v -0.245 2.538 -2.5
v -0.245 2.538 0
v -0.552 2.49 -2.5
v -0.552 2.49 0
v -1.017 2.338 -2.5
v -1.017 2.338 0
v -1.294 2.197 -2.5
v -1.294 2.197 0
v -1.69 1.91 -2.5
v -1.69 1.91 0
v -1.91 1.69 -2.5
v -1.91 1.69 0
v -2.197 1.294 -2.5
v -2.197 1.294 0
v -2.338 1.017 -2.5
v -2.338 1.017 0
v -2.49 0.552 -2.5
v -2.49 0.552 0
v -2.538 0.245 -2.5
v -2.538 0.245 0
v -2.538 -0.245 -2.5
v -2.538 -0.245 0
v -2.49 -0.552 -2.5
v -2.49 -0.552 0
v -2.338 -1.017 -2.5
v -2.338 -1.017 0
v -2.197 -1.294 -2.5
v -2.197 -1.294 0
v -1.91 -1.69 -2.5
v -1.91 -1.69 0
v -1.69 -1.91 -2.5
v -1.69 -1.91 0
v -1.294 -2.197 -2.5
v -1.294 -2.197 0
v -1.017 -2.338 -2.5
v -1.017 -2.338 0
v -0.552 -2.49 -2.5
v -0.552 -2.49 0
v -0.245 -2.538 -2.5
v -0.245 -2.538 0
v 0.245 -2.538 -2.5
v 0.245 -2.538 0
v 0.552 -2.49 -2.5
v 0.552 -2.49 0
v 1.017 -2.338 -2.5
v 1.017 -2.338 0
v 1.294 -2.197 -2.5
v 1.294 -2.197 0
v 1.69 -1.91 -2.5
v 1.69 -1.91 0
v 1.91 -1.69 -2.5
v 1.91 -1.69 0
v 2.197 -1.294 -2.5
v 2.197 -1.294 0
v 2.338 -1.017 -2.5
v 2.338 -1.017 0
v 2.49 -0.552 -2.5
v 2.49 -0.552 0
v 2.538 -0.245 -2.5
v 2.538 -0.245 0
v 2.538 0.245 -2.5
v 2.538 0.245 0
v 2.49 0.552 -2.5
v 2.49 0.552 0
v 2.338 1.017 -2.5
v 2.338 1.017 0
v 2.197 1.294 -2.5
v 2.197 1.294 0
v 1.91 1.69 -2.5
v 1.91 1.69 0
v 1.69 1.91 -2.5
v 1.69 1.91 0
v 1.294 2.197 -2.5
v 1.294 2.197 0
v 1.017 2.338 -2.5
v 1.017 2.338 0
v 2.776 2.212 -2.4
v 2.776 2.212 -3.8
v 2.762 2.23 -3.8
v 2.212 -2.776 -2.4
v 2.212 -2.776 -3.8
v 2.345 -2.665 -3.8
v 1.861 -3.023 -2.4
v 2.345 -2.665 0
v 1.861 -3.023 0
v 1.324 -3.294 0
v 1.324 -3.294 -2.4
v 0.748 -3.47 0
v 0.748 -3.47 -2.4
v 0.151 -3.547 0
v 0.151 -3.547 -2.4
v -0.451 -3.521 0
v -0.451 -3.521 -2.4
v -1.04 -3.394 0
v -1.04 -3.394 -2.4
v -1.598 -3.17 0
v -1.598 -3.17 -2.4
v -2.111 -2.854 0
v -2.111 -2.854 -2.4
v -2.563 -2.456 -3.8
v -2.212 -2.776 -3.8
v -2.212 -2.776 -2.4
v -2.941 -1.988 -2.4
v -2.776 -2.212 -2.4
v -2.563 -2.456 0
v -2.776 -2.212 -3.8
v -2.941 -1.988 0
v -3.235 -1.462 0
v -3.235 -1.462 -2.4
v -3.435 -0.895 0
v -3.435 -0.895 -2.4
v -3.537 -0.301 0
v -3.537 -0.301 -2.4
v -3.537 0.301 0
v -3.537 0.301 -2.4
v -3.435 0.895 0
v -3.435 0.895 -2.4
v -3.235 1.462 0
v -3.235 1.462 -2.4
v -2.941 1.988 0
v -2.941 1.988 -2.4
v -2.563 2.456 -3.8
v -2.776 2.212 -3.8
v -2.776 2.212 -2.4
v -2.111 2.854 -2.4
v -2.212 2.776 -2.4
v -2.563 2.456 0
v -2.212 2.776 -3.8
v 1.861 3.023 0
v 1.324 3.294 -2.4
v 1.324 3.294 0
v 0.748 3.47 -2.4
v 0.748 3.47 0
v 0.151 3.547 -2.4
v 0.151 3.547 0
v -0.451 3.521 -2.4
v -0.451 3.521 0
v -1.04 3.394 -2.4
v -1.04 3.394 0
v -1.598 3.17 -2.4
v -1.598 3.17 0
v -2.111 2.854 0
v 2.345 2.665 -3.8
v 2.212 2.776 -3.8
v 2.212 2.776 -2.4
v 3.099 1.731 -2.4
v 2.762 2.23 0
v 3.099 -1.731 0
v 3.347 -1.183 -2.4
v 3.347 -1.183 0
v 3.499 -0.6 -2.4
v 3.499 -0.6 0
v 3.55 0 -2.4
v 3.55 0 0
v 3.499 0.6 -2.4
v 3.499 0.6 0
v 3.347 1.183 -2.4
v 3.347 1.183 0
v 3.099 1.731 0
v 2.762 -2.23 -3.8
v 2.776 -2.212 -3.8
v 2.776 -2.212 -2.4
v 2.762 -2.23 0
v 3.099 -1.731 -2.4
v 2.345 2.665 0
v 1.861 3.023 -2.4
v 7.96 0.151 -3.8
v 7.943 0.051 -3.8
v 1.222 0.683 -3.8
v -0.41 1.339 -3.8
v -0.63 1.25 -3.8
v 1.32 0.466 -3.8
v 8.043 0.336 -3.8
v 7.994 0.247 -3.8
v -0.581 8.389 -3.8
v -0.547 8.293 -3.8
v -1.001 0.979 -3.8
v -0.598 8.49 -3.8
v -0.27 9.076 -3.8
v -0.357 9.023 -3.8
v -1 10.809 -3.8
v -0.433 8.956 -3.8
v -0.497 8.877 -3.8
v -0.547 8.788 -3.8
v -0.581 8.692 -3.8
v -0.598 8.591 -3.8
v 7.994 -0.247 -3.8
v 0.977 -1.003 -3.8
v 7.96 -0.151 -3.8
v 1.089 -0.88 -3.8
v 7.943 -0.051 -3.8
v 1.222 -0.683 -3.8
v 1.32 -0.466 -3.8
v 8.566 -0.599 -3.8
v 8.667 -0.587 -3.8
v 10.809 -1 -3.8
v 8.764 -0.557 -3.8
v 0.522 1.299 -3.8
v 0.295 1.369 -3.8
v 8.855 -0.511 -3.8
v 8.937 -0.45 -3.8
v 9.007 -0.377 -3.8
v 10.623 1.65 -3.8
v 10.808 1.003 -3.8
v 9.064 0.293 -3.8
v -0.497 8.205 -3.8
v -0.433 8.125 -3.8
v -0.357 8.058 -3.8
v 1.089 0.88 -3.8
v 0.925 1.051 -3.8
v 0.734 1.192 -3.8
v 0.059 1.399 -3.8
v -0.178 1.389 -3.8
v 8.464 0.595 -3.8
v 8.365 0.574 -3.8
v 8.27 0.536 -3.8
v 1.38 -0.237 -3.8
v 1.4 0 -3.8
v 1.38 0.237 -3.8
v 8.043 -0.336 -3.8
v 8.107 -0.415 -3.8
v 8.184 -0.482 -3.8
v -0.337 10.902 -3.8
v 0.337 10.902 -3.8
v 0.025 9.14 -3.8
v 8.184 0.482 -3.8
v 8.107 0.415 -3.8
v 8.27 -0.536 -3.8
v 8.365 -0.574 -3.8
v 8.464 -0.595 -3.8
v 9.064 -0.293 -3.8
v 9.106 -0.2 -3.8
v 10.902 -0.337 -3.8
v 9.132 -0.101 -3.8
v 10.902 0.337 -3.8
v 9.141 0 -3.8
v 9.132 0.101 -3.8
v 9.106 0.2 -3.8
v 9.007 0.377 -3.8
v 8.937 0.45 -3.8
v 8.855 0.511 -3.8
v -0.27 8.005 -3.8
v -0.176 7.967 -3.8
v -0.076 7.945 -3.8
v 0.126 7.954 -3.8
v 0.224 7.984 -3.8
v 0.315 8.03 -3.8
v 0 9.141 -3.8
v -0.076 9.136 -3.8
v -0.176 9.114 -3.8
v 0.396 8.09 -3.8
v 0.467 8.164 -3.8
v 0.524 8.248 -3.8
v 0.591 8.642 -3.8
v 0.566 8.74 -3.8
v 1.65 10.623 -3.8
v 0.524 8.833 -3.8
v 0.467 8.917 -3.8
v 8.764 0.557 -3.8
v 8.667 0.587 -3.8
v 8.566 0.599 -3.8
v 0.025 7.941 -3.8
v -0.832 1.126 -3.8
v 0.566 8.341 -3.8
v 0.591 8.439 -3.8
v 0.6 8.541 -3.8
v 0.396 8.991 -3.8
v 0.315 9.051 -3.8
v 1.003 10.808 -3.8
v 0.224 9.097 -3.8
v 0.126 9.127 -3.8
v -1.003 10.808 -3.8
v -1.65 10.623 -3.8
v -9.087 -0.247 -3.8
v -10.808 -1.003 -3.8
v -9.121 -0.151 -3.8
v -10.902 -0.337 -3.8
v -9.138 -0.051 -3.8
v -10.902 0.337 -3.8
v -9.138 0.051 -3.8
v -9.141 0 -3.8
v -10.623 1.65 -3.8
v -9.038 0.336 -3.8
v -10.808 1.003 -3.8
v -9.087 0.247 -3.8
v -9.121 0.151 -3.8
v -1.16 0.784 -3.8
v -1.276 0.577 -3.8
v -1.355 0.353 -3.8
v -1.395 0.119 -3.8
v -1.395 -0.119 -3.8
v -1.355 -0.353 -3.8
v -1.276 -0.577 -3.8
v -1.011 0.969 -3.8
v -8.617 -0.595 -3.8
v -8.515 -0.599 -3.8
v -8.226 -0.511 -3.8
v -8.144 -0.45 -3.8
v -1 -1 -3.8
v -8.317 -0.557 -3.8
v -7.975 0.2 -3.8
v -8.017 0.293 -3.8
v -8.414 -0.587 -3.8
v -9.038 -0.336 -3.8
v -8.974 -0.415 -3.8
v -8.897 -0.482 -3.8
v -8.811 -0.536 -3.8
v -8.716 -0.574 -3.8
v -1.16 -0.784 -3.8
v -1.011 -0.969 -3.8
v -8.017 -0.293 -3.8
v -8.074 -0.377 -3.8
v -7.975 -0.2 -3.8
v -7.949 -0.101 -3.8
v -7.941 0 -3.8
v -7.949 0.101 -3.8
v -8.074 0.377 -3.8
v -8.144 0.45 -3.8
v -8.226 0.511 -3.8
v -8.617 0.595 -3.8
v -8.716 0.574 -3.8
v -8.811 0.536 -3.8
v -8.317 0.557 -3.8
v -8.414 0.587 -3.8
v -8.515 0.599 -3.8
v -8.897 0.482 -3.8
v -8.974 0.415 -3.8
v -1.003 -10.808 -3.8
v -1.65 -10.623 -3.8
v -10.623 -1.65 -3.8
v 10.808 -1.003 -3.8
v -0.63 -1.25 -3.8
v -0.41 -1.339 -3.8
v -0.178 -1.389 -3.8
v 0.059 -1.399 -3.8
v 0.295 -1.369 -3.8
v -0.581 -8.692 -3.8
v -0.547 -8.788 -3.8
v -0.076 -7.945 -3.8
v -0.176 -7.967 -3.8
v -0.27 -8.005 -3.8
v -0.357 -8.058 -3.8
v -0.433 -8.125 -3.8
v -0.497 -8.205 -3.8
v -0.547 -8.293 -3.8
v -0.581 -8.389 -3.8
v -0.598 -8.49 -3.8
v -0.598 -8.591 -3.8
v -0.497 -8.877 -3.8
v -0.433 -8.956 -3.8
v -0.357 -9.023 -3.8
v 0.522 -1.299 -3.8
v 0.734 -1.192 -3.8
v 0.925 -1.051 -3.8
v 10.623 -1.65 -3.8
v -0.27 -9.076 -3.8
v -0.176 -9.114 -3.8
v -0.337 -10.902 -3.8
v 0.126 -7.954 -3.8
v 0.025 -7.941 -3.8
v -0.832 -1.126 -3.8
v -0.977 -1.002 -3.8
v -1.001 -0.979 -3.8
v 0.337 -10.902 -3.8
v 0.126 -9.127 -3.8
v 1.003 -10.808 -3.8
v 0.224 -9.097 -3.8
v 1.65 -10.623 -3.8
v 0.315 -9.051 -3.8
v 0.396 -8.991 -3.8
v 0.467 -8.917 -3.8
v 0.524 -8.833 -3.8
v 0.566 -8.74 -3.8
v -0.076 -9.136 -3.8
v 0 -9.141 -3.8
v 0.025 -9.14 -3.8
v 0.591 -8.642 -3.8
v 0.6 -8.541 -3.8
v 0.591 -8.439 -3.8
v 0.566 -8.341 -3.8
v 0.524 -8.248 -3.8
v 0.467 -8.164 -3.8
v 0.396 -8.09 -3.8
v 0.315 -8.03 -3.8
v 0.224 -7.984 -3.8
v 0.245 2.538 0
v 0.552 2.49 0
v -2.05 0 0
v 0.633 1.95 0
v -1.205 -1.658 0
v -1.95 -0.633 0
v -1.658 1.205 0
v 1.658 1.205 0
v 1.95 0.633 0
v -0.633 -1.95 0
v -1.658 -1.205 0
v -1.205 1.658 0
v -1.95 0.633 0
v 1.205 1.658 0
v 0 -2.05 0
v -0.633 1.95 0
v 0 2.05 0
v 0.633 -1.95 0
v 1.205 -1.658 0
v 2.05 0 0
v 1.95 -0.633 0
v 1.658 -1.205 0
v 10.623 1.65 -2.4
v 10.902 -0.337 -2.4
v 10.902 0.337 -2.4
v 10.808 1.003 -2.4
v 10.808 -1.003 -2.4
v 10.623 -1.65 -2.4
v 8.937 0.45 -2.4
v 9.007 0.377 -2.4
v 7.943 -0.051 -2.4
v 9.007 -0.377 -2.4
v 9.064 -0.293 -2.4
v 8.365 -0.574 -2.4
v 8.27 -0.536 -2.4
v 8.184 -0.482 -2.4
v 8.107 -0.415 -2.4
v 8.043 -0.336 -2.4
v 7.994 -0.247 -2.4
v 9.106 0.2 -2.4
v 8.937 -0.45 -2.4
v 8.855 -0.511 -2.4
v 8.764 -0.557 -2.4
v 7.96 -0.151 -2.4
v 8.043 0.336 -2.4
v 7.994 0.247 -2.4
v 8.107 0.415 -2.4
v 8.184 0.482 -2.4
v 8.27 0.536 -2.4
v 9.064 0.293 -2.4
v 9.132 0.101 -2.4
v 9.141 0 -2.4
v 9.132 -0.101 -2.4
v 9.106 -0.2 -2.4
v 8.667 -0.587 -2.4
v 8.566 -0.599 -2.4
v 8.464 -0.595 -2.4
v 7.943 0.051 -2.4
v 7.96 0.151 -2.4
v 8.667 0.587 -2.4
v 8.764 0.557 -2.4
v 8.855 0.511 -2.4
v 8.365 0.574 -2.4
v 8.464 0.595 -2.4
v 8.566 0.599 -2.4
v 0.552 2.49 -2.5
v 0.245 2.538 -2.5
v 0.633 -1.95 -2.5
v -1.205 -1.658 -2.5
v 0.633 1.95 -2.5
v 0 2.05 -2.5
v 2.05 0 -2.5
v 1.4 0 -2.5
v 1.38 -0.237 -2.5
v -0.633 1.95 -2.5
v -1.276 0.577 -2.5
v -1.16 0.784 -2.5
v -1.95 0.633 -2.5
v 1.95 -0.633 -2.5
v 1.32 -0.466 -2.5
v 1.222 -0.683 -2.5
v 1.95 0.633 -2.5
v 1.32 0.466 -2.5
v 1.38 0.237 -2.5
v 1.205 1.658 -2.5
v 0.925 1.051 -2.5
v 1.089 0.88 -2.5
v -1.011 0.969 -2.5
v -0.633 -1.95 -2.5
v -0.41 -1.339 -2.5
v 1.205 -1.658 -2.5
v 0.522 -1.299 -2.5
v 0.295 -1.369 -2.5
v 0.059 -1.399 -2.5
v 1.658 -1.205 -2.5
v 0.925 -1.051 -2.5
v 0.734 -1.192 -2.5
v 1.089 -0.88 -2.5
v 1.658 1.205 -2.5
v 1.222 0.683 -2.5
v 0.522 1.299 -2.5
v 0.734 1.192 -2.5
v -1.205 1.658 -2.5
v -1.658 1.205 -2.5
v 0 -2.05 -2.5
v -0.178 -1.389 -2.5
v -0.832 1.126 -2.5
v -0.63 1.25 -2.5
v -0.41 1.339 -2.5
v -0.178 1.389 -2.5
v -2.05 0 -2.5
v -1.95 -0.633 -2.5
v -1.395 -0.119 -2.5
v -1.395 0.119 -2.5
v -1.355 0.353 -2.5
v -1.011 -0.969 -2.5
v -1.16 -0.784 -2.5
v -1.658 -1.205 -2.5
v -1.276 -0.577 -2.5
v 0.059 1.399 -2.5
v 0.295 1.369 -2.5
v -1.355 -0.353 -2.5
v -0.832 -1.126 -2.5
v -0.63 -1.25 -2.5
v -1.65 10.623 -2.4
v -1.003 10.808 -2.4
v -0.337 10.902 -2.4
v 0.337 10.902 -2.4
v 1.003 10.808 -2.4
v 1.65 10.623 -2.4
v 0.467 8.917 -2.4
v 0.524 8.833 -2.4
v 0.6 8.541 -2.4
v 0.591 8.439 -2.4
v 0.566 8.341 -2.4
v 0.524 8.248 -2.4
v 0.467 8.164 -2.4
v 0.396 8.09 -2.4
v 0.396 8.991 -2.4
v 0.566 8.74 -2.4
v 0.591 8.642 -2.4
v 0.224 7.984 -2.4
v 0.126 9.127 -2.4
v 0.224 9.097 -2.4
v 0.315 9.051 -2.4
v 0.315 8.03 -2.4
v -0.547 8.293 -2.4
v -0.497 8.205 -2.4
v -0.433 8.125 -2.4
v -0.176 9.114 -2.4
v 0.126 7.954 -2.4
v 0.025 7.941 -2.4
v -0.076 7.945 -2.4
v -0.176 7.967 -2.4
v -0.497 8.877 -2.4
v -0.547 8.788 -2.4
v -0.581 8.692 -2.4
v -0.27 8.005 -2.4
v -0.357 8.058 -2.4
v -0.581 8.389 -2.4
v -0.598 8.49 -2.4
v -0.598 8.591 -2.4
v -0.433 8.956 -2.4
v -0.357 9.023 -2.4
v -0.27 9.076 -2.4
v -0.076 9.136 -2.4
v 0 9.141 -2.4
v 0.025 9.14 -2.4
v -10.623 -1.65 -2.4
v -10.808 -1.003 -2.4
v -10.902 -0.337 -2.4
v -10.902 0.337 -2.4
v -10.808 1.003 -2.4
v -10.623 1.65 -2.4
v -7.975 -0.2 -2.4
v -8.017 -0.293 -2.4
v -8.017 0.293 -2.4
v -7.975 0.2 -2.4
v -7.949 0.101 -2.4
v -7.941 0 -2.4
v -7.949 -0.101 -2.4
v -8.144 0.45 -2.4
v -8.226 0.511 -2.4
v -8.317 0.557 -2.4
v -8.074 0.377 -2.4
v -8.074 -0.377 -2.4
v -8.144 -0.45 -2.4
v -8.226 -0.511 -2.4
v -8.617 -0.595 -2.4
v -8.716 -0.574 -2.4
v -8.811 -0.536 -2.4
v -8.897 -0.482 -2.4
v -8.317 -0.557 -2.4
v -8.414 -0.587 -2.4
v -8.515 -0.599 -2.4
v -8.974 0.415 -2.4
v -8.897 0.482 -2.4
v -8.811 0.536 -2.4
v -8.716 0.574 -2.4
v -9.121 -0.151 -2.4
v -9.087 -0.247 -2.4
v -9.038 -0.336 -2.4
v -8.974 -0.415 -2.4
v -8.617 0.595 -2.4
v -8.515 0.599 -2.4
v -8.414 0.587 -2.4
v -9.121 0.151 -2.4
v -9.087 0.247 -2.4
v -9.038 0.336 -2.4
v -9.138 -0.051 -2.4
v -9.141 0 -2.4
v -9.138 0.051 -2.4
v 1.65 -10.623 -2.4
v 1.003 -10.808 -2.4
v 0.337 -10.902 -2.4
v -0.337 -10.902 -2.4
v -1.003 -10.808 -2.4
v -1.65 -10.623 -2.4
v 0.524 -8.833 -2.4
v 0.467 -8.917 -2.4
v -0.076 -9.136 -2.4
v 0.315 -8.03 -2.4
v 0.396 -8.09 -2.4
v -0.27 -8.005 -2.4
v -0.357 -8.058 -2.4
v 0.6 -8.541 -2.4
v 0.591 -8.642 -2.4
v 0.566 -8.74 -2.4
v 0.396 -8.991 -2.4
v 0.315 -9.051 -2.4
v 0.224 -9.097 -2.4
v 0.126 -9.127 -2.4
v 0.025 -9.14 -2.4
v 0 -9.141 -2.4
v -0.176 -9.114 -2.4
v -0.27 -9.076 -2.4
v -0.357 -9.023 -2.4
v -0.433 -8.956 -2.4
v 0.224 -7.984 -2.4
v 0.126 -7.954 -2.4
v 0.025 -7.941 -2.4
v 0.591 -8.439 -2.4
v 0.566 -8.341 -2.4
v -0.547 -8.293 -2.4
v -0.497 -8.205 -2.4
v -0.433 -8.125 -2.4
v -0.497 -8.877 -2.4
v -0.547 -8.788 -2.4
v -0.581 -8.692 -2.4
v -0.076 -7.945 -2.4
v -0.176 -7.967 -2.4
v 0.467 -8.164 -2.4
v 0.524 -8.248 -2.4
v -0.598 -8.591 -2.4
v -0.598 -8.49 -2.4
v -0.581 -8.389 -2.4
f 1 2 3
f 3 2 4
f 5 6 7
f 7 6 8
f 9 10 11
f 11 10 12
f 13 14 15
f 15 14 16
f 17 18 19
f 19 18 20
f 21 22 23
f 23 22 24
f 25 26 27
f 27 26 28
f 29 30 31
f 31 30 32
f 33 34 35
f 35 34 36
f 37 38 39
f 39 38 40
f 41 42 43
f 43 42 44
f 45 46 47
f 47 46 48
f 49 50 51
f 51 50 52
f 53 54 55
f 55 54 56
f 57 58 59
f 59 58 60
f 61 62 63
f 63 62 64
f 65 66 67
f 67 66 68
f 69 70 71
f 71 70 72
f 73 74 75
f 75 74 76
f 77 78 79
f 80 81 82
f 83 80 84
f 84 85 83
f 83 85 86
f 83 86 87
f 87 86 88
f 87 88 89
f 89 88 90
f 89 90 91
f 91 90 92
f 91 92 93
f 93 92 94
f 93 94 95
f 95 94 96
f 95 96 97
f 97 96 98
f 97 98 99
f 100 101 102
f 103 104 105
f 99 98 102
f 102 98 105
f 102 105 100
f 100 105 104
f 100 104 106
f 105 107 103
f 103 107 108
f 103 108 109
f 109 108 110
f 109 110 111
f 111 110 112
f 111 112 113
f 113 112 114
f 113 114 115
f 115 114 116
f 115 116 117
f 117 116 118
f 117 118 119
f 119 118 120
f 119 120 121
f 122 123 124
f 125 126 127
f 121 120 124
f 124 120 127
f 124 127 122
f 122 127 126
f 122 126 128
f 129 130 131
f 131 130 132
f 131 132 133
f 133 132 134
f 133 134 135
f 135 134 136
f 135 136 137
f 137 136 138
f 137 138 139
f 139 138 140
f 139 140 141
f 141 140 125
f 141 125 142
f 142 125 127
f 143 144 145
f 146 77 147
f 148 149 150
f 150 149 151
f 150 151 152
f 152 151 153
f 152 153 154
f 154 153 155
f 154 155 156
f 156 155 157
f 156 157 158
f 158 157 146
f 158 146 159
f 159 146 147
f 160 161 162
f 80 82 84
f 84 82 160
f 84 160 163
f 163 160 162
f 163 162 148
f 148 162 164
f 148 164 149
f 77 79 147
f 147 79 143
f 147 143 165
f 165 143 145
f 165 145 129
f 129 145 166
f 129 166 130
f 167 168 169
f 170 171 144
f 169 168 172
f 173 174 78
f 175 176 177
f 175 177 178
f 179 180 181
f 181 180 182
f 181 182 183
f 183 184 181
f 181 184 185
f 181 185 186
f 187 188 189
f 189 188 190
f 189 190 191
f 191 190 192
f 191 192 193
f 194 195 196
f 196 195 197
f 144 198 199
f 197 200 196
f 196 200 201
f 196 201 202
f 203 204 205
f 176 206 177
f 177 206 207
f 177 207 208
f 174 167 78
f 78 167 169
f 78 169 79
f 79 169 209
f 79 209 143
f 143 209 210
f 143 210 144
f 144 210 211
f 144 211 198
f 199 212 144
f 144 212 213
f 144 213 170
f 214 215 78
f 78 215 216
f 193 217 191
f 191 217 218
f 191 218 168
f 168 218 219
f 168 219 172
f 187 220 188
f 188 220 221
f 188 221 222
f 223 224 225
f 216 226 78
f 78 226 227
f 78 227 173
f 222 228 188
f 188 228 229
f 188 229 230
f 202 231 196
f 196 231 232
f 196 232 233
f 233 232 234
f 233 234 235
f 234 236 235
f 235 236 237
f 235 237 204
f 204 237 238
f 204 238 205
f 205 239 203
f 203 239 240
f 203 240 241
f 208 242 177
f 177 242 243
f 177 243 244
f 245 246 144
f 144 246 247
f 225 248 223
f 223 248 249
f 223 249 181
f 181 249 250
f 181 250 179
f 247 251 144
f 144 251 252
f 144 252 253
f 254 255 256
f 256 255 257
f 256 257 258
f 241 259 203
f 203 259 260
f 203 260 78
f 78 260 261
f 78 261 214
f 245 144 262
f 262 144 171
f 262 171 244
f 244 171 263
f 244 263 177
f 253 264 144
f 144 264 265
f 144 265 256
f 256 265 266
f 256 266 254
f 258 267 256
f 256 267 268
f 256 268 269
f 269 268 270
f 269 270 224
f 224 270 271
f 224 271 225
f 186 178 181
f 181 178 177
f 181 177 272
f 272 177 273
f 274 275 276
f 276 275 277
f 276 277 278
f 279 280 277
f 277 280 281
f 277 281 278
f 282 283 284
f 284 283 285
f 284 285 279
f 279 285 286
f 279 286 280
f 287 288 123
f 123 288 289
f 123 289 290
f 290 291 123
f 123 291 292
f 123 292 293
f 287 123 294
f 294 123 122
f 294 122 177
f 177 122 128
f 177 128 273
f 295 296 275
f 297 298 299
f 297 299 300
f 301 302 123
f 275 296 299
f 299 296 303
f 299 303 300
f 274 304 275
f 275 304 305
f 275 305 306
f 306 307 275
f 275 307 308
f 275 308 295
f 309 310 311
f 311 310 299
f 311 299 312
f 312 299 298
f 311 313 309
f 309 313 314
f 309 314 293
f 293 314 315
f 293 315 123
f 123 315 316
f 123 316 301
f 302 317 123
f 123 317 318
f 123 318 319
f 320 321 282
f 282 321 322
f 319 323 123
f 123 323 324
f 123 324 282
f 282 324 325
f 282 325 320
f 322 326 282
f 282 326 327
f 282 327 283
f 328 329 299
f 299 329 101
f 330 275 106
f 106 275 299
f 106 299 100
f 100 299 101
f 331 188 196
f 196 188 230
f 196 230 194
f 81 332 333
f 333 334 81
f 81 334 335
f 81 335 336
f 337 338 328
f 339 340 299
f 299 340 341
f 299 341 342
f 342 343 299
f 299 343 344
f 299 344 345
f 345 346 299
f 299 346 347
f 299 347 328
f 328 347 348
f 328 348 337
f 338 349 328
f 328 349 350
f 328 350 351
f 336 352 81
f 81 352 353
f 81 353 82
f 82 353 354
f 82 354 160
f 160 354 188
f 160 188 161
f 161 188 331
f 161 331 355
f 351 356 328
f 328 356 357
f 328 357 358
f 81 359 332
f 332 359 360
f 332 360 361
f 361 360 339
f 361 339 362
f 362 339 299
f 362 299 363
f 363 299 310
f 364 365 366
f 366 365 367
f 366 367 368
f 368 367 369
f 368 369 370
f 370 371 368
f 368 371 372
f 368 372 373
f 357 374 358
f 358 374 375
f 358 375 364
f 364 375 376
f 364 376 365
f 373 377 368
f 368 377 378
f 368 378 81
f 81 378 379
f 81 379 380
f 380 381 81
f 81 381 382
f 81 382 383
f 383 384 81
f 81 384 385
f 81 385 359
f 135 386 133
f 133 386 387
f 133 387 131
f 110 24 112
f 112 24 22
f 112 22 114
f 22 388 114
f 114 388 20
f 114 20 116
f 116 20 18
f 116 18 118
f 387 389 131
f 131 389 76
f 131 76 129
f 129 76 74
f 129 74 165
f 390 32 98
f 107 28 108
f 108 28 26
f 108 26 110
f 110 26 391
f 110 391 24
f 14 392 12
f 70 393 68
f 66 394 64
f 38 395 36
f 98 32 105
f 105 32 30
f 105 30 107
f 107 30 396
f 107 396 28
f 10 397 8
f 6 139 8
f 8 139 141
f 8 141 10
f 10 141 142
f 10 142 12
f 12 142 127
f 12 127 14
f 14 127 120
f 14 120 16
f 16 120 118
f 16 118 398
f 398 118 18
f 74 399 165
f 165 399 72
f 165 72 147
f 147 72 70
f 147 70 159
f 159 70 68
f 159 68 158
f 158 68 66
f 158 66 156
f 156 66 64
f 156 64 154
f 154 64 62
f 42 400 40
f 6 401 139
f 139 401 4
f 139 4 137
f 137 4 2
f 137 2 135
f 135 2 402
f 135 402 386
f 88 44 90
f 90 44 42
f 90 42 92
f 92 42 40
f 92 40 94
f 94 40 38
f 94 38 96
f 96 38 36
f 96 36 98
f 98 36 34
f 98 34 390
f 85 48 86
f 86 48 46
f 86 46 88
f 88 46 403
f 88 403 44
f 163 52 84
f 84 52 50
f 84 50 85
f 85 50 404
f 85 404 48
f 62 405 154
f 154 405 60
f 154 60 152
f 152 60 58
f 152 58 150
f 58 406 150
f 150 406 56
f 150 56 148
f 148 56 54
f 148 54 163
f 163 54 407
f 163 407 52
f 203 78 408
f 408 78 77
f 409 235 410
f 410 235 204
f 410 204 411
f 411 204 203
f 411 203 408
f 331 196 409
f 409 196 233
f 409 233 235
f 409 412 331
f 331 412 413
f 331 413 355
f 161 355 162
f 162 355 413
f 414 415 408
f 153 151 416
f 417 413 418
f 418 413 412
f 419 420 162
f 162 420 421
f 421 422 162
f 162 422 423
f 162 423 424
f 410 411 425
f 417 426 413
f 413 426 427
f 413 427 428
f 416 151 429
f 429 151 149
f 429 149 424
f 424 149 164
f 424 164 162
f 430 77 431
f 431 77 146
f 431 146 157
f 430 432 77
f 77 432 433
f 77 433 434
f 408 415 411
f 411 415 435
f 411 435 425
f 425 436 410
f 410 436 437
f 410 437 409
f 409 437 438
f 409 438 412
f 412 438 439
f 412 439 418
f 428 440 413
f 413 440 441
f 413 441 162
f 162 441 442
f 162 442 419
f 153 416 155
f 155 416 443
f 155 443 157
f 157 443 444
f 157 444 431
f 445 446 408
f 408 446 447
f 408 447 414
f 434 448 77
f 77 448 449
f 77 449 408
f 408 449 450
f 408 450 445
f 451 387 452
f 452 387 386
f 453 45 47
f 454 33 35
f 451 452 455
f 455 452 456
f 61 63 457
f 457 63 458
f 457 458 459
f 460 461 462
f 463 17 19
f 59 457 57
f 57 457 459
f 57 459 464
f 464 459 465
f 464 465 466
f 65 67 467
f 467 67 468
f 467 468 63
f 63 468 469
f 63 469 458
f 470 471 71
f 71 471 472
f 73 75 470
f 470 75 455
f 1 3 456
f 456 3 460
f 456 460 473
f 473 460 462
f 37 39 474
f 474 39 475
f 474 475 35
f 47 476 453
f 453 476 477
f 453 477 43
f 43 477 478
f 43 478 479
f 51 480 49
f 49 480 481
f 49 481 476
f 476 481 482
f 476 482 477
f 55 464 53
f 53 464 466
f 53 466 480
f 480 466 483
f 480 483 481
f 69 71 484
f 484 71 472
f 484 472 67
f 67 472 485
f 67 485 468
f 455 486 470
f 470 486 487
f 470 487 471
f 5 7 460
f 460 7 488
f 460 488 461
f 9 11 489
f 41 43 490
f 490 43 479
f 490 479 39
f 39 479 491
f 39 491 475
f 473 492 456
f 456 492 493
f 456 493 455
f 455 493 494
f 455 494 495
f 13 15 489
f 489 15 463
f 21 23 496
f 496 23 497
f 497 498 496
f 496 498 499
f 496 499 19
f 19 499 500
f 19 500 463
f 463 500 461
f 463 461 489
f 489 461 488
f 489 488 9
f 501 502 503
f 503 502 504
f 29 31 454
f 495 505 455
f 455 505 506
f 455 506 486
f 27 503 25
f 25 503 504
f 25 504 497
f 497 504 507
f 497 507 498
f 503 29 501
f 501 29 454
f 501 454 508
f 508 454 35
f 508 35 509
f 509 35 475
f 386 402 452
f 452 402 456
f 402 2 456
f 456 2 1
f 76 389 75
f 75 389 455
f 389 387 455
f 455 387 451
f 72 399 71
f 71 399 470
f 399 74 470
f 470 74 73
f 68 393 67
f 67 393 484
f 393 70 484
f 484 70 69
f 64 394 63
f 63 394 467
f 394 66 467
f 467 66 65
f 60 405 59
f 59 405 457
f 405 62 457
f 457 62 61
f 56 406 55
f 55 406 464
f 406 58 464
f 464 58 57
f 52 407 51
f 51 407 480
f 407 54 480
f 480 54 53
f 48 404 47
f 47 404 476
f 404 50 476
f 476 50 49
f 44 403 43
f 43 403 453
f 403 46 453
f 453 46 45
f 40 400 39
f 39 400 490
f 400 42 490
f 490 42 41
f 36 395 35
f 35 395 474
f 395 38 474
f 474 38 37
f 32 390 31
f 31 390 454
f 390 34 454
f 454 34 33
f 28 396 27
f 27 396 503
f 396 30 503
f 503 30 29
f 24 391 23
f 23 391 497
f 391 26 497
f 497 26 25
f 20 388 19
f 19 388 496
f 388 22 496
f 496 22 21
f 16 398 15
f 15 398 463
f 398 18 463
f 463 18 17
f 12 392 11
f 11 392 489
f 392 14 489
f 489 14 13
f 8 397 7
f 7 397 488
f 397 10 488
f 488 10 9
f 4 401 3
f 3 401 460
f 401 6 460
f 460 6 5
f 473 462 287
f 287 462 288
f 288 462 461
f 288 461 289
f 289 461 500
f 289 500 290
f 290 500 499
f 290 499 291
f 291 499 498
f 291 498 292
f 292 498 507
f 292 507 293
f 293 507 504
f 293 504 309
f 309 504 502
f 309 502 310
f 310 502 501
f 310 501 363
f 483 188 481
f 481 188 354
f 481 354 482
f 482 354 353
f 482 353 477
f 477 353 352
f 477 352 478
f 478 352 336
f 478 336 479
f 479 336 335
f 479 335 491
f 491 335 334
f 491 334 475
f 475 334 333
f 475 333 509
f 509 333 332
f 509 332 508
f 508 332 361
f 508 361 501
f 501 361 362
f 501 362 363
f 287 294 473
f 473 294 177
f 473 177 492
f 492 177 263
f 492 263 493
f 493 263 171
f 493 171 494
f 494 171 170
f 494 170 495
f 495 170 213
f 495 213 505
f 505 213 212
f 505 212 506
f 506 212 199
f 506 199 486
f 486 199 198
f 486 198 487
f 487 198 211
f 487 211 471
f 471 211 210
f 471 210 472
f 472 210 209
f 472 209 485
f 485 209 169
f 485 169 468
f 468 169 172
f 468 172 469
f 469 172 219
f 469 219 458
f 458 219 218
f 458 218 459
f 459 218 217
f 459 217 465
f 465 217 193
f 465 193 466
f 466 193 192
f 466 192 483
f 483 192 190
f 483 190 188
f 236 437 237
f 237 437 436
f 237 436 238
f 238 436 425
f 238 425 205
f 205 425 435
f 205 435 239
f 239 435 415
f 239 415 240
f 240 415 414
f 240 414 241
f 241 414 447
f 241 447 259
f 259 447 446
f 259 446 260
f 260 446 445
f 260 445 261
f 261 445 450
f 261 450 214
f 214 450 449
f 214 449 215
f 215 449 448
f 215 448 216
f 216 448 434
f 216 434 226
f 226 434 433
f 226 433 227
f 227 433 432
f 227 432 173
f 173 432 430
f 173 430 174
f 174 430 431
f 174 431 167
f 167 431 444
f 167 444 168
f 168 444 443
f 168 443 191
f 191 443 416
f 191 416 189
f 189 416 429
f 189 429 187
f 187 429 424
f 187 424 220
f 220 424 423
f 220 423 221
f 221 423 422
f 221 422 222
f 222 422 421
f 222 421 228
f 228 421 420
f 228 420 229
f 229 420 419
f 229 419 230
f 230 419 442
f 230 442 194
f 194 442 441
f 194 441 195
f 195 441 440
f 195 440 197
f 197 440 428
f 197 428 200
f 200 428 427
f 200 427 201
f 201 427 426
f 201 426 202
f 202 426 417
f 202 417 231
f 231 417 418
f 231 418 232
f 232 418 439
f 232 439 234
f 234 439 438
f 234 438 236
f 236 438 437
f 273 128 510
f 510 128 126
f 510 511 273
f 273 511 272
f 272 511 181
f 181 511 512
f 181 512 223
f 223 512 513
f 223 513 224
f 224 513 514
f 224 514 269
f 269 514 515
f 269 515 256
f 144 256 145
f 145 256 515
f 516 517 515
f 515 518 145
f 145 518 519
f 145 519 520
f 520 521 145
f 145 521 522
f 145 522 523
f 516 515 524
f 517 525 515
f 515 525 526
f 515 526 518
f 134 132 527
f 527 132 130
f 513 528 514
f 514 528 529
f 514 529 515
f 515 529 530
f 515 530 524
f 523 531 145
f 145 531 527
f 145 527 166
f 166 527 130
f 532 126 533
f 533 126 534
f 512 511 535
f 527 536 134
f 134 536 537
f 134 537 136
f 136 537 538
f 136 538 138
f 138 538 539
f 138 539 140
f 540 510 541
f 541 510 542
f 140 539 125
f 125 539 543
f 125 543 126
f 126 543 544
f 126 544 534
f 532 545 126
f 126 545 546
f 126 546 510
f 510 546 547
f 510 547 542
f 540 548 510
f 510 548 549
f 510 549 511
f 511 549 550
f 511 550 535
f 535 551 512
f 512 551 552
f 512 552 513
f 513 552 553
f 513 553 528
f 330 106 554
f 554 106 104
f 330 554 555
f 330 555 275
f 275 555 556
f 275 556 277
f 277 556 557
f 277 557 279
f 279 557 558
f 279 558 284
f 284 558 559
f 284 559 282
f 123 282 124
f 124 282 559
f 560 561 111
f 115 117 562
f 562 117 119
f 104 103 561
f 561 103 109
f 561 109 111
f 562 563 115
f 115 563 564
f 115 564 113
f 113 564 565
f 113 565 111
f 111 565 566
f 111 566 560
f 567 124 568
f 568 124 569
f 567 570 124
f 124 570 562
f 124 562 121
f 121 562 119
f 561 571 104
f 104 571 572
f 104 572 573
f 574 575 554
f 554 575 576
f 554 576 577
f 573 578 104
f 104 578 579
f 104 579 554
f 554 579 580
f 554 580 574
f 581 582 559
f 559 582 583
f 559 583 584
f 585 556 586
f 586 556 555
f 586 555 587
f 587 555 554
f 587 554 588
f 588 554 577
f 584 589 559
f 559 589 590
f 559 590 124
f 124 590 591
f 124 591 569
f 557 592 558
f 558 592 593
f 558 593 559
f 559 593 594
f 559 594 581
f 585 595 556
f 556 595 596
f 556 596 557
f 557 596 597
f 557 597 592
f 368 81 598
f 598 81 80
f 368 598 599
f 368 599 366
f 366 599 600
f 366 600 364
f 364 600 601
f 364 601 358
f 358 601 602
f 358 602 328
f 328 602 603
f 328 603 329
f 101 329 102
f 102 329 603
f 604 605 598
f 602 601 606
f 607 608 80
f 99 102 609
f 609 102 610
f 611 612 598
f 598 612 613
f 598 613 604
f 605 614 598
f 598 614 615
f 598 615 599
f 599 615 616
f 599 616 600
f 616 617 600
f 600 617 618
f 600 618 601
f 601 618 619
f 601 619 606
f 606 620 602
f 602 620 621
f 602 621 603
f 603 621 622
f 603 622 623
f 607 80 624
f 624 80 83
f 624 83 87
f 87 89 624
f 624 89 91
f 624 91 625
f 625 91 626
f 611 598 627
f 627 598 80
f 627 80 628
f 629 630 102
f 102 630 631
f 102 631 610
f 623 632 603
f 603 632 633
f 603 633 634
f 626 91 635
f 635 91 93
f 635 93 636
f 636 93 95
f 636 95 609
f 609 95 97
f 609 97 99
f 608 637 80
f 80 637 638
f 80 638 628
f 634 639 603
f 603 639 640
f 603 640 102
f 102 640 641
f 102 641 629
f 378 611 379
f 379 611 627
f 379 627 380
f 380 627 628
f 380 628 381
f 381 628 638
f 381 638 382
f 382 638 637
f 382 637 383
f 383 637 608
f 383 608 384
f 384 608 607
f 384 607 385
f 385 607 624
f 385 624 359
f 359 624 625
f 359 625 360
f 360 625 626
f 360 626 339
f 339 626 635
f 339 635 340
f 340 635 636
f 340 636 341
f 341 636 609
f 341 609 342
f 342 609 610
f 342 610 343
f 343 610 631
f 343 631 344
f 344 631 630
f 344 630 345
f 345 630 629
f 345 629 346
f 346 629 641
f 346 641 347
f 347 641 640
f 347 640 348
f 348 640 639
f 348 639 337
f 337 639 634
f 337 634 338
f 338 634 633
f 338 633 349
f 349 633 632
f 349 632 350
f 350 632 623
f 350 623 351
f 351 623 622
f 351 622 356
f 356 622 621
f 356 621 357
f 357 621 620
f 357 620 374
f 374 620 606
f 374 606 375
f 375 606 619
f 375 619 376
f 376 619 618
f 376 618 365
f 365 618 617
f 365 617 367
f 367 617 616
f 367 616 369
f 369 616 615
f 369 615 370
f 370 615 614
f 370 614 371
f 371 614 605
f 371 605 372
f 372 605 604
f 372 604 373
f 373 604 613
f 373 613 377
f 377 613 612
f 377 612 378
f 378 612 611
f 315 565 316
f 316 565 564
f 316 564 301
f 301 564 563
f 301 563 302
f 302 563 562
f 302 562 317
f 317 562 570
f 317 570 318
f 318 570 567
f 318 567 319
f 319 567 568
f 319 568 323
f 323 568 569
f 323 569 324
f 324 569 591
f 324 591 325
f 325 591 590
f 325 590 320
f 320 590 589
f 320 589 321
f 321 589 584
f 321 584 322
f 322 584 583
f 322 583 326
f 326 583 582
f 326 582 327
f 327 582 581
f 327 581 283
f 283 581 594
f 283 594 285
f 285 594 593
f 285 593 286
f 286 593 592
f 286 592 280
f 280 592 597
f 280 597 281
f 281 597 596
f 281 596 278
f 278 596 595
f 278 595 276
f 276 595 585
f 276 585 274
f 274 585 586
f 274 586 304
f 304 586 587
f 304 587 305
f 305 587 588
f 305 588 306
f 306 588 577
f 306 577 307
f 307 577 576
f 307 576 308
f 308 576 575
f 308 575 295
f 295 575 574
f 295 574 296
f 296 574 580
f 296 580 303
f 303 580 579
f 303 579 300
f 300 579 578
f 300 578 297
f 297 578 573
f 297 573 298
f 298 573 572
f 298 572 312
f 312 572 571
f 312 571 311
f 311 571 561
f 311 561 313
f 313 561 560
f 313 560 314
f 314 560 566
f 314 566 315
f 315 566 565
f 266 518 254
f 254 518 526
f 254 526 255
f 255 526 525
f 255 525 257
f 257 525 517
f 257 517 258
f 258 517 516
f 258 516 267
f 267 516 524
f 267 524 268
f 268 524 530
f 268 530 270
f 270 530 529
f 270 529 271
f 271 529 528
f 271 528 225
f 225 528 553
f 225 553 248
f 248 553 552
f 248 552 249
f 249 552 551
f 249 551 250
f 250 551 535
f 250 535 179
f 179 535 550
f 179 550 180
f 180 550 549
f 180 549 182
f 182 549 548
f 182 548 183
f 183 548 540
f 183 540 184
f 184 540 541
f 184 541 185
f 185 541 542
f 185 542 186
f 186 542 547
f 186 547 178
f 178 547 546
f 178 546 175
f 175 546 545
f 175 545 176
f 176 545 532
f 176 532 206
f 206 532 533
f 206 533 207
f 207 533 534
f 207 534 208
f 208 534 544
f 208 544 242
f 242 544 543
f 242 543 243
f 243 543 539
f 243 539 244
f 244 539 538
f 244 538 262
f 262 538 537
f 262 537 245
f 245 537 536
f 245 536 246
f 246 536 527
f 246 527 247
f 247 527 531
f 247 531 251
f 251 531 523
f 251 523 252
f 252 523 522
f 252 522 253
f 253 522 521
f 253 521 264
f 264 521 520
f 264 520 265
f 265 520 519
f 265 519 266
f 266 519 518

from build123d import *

# Parameters (mm, degrees)
SKETCH2_R           = 3.55
BOSS_EXTRUDE1_DEPTH = 3.8
BOSS_EXTRUDE2_DEPTH = 1.4
SKETCH5_R           = 2.549999919
CUT_EXTRUDE1_DEPTH  = 2.5
BOSS_EXTRUDE3_DEPTH = 2.5
SKETCH6_R           = 1.4
CUT_EXTRUDE2_DEPTH  = 12.745554295
SKETCH7_R           = 0.6
CUT_EXTRUDE3_DEPTH  = 12.724676785
CIRPATTERN1_COUNT   = 4
CIRPATTERN2_COUNT   = 4


with BuildPart() as part:
    # Sketch2 → Boss-Extrude1 (new body)
    with BuildSketch(Plane.XY):
        Circle(SKETCH2_R)
    extrude(amount=-BOSS_EXTRUDE1_DEPTH)

    # Sketch4 → Boss-Extrude2 (add)
    with BuildSketch(Plane.XY.offset(-2.4)):
        with BuildLine():
            Line((2.776387215, 2.212277889), (10.622617722, 1.649999976))
            ThreePointArc((10.622617722, 1.649999976), (10.913548722, 0), (10.622617722, -1.649999976))
            Line((10.622617722, -1.649999976), (2.776387215, -2.212277889))
            ThreePointArc((2.776387215, -2.212277889), (3.549999952, 0), (2.776387215, 2.212277889))
        make_face()
    boss_extrude2 = extrude(amount=-BOSS_EXTRUDE2_DEPTH)

    # Sketch5 → Cut-Extrude1 (cut)
    with BuildSketch(Plane.XY):
        Circle(SKETCH5_R)
    extrude(amount=-CUT_EXTRUDE1_DEPTH, mode=Mode.SUBTRACT)

    # Sketch3 → Boss-Extrude3 (add)
    with BuildSketch(Plane.XY):
        with BuildLine():
            Line((-0.244697916, 2.538232164), (0, 2.049999952))
            Line((0, 2.049999952), (0.244697916, 2.538232164))
            ThreePointArc((0.244697916, 2.538232164), (0, 2.549999919), (-0.244697916, 2.538232164))
        make_face()
        with BuildLine():
            Line((0.551635326, 2.489618054), (0.633484824, 1.949665813))
            Line((0.633484824, 1.949665813), (1.017078422, 2.338386424))
            ThreePointArc((1.017078422, 2.338386424), (0.787993311, 2.42519404), (0.551635326, 2.489618054))
        make_face()
        with BuildLine():
            Line((1.29397066, 2.197302783), (1.204959739, 1.6584848))
            Line((1.204959739, 1.6584848), (1.689900206, 1.90964313))
            ThreePointArc((1.689900206, 1.90964313), (1.498852346, 2.06299327), (1.29397066, 2.197302783))
        make_face()
        with BuildLine():
            Line((1.90964313, 1.689900206), (1.6584848, 1.204959739))
            Line((1.6584848, 1.204959739), (2.197302783, 1.29397066))
            ThreePointArc((2.197302783, 1.29397066), (2.06299327, 1.498852346), (1.90964313, 1.689900206))
        make_face()
        with BuildLine():
            Line((2.338386424, 1.017078422), (1.949665813, 0.633484824))
            Line((1.949665813, 0.633484824), (2.489618054, 0.551635326))
            ThreePointArc((2.489618054, 0.551635326), (2.42519404, 0.787993311), (2.338386424, 1.017078422))
        make_face()
        with BuildLine():
            Line((2.538232164, 0.244697916), (2.049999952, 0))
            Line((2.049999952, 0), (2.538232164, -0.244697916))
            ThreePointArc((2.538232164, -0.244697916), (2.549999919, 0), (2.538232164, 0.244697916))
        make_face()
        with BuildLine():
            Line((2.489618054, -0.551635326), (1.949665813, -0.633484824))
            Line((1.949665813, -0.633484824), (2.338386424, -1.017078422))
            ThreePointArc((2.338386424, -1.017078422), (2.42519404, -0.787993311), (2.489618054, -0.551635326))
        make_face()
        with BuildLine():
            Line((2.197302783, -1.29397066), (1.6584848, -1.204959739))
            Line((1.6584848, -1.204959739), (1.90964313, -1.689900206))
            ThreePointArc((1.90964313, -1.689900206), (2.06299327, -1.498852346), (2.197302783, -1.29397066))
        make_face()
        with BuildLine():
            Line((1.689900206, -1.90964313), (1.204959739, -1.6584848))
            Line((1.204959739, -1.6584848), (1.29397066, -2.197302783))
            ThreePointArc((1.29397066, -2.197302783), (1.498852346, -2.06299327), (1.689900206, -1.90964313))
        make_face()
        with BuildLine():
            Line((1.017078422, -2.338386424), (0.633484824, -1.949665813))
            Line((0.633484824, -1.949665813), (0.551635326, -2.489618054))
            ThreePointArc((0.551635326, -2.489618054), (0.787993311, -2.42519404), (1.017078422, -2.338386424))
        make_face()
        with BuildLine():
            Line((0.244697916, -2.538232164), (0, -2.049999952))
            Line((0, -2.049999952), (-0.244697916, -2.538232164))
            ThreePointArc((-0.244697916, -2.538232164), (0, -2.549999919), (0.244697916, -2.538232164))
        make_face()
        with BuildLine():
            Line((-0.551635326, -2.489618054), (-0.633484824, -1.949665813))
            Line((-0.633484824, -1.949665813), (-1.017078422, -2.338386424))
            ThreePointArc((-1.017078422, -2.338386424), (-0.787993311, -2.42519404), (-0.551635326, -2.489618054))
        make_face()
        with BuildLine():
            Line((-1.29397066, -2.197302783), (-1.204959739, -1.6584848))
            Line((-1.204959739, -1.6584848), (-1.689900206, -1.90964313))
            ThreePointArc((-1.689900206, -1.90964313), (-1.498852346, -2.06299327), (-1.29397066, -2.197302783))
        make_face()
        with BuildLine():
            Line((-1.90964313, -1.689900206), (-1.6584848, -1.204959739))
            Line((-1.6584848, -1.204959739), (-2.197302783, -1.29397066))
            ThreePointArc((-2.197302783, -1.29397066), (-2.06299327, -1.498852346), (-1.90964313, -1.689900206))
        make_face()
        with BuildLine():
            Line((-2.338386424, -1.017078422), (-1.949665813, -0.633484824))
            Line((-1.949665813, -0.633484824), (-2.489618054, -0.551635326))
            ThreePointArc((-2.489618054, -0.551635326), (-2.42519404, -0.787993311), (-2.338386424, -1.017078422))
        make_face()
        with BuildLine():
            Line((-2.538232164, -0.244697916), (-2.049999952, 0))
            Line((-2.049999952, 0), (-2.538232164, 0.244697916))
            ThreePointArc((-2.538232164, 0.244697916), (-2.549999919, 0), (-2.538232164, -0.244697916))
        make_face()
        with BuildLine():
            Line((-2.489618054, 0.551635326), (-1.949665813, 0.633484824))
            Line((-1.949665813, 0.633484824), (-2.338386424, 1.017078422))
            ThreePointArc((-2.338386424, 1.017078422), (-2.42519404, 0.787993311), (-2.489618054, 0.551635326))
        make_face()
        with BuildLine():
            Line((-2.197302783, 1.29397066), (-1.6584848, 1.204959739))
            Line((-1.6584848, 1.204959739), (-1.90964313, 1.689900206))
            ThreePointArc((-1.90964313, 1.689900206), (-2.06299327, 1.498852346), (-2.197302783, 1.29397066))
        make_face()
        with BuildLine():
            Line((-1.689900206, 1.90964313), (-1.204959739, 1.6584848))
            Line((-1.204959739, 1.6584848), (-1.29397066, 2.197302783))
            ThreePointArc((-1.29397066, 2.197302783), (-1.498852346, 2.06299327), (-1.689900206, 1.90964313))
        make_face()
        with BuildLine():
            Line((-1.017078422, 2.338386424), (-0.633484824, 1.949665813))
            Line((-0.633484824, 1.949665813), (-0.551635326, 2.489618054))
            ThreePointArc((-0.551635326, 2.489618054), (-0.787993311, 2.42519404), (-1.017078422, 2.338386424))
        make_face()
    extrude(amount=-BOSS_EXTRUDE3_DEPTH)

    # Sketch6 → Cut-Extrude2 (cut, through all)
    with BuildSketch(Plane.XY.offset(-2.5)):
        Circle(SKETCH6_R)
    extrude(amount=-CUT_EXTRUDE2_DEPTH, mode=Mode.SUBTRACT)

    # Sketch7 → Cut-Extrude3 (cut, through all)
    with BuildSketch(Plane.XY.offset(-2.4)):
        with Locations((8.5405208, 0)):
            Circle(SKETCH7_R)
    cut_extrude3 = extrude(amount=-CUT_EXTRUDE3_DEPTH, mode=Mode.SUBTRACT)

    # CirPattern1: Boss-Extrude2 ×4 about axis
    cirpattern1_axis = Axis((0, 0, 0), (0, 0, 1))
    for i in range(1, CIRPATTERN1_COUNT):
        add(boss_extrude2.rotate(cirpattern1_axis, i * 360 / CIRPATTERN1_COUNT))

    # CirPattern2: Cut-Extrude3 ×4 about axis
    cirpattern2_axis = Axis((0, 0, 0), (0, 0, 1))
    for i in range(1, CIRPATTERN2_COUNT):
        add(cut_extrude3.rotate(cirpattern2_axis, i * 360 / CIRPATTERN2_COUNT), mode=Mode.SUBTRACT)


solid = part.part
